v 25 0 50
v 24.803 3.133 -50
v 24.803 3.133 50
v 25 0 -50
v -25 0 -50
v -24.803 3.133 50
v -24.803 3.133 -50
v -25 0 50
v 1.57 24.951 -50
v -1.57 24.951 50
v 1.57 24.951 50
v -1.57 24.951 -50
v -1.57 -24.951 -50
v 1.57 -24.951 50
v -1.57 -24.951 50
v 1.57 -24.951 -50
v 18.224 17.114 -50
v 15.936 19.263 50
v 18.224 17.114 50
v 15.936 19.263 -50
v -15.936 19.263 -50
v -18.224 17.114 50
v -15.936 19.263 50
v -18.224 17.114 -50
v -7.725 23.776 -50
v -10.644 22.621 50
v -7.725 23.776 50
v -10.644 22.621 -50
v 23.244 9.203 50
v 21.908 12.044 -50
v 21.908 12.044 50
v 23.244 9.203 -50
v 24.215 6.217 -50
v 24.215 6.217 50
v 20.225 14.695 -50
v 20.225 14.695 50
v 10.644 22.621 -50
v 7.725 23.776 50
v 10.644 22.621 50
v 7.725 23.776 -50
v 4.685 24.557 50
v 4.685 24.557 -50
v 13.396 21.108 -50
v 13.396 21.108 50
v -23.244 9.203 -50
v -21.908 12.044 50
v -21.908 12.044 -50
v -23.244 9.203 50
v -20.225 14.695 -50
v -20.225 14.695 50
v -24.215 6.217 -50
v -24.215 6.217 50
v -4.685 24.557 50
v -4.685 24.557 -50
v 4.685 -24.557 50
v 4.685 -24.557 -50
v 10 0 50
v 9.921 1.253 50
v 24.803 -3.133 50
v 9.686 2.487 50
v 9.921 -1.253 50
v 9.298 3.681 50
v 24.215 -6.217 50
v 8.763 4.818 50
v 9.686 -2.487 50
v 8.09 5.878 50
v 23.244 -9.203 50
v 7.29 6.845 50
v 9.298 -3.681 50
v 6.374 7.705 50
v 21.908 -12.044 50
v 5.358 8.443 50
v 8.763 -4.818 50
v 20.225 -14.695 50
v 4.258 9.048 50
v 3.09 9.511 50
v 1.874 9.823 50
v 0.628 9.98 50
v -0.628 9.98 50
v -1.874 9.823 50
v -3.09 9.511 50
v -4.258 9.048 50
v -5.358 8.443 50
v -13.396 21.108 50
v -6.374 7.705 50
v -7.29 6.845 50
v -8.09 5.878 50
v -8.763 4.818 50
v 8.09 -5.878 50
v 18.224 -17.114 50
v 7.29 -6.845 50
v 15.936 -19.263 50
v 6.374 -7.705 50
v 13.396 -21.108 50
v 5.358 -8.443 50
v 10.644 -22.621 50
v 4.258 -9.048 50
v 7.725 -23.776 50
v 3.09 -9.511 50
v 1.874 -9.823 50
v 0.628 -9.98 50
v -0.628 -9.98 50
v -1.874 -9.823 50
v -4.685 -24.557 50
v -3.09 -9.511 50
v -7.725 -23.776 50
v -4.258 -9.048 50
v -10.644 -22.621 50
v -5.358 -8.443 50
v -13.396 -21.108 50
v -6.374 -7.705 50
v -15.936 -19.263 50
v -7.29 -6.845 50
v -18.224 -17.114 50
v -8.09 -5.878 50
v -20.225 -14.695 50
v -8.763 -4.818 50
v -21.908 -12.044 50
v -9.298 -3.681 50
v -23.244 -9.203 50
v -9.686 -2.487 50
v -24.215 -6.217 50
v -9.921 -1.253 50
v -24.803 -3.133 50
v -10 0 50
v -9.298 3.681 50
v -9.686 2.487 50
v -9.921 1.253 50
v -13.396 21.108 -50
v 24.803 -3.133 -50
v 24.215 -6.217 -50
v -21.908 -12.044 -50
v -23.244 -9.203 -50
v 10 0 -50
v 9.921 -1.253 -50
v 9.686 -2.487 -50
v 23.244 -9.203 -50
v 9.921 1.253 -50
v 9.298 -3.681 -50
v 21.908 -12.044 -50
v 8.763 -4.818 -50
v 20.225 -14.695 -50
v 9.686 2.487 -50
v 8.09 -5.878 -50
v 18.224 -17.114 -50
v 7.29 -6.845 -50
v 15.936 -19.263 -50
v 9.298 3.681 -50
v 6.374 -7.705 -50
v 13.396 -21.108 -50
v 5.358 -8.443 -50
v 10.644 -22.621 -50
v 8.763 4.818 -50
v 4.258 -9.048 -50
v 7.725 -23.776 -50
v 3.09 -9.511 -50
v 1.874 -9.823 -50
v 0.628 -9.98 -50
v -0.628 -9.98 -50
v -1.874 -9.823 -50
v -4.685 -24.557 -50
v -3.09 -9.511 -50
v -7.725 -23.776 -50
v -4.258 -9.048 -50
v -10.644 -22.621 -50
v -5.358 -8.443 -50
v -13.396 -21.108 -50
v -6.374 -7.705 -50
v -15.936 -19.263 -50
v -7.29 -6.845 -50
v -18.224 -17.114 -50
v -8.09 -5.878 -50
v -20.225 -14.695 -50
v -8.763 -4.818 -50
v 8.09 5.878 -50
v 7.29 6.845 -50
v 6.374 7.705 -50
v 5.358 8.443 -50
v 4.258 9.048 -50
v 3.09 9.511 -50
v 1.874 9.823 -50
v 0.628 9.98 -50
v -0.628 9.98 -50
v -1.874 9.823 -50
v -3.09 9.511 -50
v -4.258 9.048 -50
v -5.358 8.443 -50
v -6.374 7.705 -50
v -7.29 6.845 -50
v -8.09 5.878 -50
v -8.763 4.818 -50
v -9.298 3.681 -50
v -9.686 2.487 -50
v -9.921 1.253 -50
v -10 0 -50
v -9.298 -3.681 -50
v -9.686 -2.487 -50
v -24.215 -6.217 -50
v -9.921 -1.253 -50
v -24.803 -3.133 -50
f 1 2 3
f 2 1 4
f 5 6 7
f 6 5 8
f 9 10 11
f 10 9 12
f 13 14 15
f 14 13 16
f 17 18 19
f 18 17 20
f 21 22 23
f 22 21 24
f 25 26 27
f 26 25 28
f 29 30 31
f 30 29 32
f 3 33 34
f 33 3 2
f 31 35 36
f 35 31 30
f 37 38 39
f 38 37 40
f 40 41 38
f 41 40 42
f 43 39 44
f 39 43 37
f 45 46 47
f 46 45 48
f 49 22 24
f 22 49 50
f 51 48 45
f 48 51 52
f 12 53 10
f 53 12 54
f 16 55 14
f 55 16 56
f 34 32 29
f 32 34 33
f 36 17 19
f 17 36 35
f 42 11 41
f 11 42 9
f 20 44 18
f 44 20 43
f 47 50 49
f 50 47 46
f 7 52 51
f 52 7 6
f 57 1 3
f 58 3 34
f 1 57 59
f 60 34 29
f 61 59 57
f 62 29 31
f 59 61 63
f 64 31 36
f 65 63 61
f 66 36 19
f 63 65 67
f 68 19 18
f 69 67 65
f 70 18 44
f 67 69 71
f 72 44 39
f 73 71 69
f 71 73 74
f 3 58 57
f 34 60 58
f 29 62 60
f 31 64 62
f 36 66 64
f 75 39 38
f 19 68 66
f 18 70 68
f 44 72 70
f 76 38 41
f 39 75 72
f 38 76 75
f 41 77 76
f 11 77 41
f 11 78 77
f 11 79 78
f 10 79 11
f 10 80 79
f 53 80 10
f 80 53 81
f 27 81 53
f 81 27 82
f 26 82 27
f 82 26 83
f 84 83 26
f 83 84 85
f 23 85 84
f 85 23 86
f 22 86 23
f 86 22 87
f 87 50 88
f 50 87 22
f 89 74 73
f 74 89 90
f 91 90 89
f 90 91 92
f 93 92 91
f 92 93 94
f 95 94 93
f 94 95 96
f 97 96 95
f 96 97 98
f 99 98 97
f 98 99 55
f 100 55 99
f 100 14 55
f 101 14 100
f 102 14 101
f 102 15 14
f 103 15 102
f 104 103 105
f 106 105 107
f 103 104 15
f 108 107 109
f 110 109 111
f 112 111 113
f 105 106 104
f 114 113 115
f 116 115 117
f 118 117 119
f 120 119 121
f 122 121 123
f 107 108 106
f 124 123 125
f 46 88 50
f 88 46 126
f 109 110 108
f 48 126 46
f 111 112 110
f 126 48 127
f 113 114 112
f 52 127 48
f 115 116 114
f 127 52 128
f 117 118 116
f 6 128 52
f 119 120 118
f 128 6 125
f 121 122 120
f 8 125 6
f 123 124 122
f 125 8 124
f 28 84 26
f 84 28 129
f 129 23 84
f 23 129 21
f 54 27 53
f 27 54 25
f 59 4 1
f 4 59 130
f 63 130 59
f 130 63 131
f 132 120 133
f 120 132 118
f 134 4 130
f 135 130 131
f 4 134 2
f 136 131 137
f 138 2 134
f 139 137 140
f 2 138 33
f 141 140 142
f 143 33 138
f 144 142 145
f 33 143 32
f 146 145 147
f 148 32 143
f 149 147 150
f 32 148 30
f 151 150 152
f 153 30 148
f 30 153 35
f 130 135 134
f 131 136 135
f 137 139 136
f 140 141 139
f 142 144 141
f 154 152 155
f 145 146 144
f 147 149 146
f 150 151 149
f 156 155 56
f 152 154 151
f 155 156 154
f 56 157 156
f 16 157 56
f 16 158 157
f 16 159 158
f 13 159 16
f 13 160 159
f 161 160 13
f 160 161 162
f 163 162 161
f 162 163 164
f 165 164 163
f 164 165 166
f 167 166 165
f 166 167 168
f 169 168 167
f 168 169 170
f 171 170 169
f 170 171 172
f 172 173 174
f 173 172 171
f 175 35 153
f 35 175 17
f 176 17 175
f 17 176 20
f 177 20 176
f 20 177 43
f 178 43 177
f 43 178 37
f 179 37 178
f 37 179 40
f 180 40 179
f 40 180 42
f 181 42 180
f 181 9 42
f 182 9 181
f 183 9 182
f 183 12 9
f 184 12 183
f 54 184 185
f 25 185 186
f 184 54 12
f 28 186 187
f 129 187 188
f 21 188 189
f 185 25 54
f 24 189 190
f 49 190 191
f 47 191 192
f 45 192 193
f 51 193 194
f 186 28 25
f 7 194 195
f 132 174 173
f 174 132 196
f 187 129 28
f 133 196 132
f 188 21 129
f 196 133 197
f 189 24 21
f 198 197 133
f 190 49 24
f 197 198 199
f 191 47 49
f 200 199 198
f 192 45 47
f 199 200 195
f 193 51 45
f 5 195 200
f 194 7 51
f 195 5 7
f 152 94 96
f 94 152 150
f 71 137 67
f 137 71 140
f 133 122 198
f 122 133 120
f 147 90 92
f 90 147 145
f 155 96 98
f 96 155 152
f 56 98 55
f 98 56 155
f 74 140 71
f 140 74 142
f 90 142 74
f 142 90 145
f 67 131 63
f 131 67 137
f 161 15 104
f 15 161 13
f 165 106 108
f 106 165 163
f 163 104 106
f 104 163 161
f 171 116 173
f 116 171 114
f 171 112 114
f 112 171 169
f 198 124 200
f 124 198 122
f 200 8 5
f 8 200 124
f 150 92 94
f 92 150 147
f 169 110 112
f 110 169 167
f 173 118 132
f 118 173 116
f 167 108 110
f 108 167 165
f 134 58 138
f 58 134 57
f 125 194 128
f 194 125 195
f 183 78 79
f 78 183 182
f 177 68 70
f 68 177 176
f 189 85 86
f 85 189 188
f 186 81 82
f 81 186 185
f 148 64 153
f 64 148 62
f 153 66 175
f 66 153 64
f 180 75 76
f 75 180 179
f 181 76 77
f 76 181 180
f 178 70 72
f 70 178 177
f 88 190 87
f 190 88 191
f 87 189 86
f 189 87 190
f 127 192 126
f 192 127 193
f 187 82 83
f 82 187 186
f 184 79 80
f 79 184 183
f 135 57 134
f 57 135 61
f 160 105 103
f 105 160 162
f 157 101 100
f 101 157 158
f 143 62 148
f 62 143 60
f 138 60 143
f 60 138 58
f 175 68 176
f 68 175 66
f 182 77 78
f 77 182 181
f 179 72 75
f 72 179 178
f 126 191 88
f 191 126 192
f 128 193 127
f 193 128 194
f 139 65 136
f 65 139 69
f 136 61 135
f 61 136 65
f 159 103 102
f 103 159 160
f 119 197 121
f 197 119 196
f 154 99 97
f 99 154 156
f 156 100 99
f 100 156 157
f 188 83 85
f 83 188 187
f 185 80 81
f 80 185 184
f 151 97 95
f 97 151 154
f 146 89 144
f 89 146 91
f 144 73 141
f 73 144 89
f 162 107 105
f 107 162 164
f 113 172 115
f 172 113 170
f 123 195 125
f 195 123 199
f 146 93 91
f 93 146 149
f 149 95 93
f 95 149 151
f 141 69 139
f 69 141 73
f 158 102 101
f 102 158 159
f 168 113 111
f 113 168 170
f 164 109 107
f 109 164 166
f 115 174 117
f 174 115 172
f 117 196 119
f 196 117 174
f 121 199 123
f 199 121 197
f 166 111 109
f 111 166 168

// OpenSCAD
$fn = 50;


difference() {
	union() {
		translate(v = [0, 0, -50.0000000000]) {
			cylinder(h = 100, r = 25.0000000000);
		}
	}
	union() {
		translate(v = [0, 0, -100.0000000000]) {
			cylinder(h = 200, r = 10);
		}
	}
}
